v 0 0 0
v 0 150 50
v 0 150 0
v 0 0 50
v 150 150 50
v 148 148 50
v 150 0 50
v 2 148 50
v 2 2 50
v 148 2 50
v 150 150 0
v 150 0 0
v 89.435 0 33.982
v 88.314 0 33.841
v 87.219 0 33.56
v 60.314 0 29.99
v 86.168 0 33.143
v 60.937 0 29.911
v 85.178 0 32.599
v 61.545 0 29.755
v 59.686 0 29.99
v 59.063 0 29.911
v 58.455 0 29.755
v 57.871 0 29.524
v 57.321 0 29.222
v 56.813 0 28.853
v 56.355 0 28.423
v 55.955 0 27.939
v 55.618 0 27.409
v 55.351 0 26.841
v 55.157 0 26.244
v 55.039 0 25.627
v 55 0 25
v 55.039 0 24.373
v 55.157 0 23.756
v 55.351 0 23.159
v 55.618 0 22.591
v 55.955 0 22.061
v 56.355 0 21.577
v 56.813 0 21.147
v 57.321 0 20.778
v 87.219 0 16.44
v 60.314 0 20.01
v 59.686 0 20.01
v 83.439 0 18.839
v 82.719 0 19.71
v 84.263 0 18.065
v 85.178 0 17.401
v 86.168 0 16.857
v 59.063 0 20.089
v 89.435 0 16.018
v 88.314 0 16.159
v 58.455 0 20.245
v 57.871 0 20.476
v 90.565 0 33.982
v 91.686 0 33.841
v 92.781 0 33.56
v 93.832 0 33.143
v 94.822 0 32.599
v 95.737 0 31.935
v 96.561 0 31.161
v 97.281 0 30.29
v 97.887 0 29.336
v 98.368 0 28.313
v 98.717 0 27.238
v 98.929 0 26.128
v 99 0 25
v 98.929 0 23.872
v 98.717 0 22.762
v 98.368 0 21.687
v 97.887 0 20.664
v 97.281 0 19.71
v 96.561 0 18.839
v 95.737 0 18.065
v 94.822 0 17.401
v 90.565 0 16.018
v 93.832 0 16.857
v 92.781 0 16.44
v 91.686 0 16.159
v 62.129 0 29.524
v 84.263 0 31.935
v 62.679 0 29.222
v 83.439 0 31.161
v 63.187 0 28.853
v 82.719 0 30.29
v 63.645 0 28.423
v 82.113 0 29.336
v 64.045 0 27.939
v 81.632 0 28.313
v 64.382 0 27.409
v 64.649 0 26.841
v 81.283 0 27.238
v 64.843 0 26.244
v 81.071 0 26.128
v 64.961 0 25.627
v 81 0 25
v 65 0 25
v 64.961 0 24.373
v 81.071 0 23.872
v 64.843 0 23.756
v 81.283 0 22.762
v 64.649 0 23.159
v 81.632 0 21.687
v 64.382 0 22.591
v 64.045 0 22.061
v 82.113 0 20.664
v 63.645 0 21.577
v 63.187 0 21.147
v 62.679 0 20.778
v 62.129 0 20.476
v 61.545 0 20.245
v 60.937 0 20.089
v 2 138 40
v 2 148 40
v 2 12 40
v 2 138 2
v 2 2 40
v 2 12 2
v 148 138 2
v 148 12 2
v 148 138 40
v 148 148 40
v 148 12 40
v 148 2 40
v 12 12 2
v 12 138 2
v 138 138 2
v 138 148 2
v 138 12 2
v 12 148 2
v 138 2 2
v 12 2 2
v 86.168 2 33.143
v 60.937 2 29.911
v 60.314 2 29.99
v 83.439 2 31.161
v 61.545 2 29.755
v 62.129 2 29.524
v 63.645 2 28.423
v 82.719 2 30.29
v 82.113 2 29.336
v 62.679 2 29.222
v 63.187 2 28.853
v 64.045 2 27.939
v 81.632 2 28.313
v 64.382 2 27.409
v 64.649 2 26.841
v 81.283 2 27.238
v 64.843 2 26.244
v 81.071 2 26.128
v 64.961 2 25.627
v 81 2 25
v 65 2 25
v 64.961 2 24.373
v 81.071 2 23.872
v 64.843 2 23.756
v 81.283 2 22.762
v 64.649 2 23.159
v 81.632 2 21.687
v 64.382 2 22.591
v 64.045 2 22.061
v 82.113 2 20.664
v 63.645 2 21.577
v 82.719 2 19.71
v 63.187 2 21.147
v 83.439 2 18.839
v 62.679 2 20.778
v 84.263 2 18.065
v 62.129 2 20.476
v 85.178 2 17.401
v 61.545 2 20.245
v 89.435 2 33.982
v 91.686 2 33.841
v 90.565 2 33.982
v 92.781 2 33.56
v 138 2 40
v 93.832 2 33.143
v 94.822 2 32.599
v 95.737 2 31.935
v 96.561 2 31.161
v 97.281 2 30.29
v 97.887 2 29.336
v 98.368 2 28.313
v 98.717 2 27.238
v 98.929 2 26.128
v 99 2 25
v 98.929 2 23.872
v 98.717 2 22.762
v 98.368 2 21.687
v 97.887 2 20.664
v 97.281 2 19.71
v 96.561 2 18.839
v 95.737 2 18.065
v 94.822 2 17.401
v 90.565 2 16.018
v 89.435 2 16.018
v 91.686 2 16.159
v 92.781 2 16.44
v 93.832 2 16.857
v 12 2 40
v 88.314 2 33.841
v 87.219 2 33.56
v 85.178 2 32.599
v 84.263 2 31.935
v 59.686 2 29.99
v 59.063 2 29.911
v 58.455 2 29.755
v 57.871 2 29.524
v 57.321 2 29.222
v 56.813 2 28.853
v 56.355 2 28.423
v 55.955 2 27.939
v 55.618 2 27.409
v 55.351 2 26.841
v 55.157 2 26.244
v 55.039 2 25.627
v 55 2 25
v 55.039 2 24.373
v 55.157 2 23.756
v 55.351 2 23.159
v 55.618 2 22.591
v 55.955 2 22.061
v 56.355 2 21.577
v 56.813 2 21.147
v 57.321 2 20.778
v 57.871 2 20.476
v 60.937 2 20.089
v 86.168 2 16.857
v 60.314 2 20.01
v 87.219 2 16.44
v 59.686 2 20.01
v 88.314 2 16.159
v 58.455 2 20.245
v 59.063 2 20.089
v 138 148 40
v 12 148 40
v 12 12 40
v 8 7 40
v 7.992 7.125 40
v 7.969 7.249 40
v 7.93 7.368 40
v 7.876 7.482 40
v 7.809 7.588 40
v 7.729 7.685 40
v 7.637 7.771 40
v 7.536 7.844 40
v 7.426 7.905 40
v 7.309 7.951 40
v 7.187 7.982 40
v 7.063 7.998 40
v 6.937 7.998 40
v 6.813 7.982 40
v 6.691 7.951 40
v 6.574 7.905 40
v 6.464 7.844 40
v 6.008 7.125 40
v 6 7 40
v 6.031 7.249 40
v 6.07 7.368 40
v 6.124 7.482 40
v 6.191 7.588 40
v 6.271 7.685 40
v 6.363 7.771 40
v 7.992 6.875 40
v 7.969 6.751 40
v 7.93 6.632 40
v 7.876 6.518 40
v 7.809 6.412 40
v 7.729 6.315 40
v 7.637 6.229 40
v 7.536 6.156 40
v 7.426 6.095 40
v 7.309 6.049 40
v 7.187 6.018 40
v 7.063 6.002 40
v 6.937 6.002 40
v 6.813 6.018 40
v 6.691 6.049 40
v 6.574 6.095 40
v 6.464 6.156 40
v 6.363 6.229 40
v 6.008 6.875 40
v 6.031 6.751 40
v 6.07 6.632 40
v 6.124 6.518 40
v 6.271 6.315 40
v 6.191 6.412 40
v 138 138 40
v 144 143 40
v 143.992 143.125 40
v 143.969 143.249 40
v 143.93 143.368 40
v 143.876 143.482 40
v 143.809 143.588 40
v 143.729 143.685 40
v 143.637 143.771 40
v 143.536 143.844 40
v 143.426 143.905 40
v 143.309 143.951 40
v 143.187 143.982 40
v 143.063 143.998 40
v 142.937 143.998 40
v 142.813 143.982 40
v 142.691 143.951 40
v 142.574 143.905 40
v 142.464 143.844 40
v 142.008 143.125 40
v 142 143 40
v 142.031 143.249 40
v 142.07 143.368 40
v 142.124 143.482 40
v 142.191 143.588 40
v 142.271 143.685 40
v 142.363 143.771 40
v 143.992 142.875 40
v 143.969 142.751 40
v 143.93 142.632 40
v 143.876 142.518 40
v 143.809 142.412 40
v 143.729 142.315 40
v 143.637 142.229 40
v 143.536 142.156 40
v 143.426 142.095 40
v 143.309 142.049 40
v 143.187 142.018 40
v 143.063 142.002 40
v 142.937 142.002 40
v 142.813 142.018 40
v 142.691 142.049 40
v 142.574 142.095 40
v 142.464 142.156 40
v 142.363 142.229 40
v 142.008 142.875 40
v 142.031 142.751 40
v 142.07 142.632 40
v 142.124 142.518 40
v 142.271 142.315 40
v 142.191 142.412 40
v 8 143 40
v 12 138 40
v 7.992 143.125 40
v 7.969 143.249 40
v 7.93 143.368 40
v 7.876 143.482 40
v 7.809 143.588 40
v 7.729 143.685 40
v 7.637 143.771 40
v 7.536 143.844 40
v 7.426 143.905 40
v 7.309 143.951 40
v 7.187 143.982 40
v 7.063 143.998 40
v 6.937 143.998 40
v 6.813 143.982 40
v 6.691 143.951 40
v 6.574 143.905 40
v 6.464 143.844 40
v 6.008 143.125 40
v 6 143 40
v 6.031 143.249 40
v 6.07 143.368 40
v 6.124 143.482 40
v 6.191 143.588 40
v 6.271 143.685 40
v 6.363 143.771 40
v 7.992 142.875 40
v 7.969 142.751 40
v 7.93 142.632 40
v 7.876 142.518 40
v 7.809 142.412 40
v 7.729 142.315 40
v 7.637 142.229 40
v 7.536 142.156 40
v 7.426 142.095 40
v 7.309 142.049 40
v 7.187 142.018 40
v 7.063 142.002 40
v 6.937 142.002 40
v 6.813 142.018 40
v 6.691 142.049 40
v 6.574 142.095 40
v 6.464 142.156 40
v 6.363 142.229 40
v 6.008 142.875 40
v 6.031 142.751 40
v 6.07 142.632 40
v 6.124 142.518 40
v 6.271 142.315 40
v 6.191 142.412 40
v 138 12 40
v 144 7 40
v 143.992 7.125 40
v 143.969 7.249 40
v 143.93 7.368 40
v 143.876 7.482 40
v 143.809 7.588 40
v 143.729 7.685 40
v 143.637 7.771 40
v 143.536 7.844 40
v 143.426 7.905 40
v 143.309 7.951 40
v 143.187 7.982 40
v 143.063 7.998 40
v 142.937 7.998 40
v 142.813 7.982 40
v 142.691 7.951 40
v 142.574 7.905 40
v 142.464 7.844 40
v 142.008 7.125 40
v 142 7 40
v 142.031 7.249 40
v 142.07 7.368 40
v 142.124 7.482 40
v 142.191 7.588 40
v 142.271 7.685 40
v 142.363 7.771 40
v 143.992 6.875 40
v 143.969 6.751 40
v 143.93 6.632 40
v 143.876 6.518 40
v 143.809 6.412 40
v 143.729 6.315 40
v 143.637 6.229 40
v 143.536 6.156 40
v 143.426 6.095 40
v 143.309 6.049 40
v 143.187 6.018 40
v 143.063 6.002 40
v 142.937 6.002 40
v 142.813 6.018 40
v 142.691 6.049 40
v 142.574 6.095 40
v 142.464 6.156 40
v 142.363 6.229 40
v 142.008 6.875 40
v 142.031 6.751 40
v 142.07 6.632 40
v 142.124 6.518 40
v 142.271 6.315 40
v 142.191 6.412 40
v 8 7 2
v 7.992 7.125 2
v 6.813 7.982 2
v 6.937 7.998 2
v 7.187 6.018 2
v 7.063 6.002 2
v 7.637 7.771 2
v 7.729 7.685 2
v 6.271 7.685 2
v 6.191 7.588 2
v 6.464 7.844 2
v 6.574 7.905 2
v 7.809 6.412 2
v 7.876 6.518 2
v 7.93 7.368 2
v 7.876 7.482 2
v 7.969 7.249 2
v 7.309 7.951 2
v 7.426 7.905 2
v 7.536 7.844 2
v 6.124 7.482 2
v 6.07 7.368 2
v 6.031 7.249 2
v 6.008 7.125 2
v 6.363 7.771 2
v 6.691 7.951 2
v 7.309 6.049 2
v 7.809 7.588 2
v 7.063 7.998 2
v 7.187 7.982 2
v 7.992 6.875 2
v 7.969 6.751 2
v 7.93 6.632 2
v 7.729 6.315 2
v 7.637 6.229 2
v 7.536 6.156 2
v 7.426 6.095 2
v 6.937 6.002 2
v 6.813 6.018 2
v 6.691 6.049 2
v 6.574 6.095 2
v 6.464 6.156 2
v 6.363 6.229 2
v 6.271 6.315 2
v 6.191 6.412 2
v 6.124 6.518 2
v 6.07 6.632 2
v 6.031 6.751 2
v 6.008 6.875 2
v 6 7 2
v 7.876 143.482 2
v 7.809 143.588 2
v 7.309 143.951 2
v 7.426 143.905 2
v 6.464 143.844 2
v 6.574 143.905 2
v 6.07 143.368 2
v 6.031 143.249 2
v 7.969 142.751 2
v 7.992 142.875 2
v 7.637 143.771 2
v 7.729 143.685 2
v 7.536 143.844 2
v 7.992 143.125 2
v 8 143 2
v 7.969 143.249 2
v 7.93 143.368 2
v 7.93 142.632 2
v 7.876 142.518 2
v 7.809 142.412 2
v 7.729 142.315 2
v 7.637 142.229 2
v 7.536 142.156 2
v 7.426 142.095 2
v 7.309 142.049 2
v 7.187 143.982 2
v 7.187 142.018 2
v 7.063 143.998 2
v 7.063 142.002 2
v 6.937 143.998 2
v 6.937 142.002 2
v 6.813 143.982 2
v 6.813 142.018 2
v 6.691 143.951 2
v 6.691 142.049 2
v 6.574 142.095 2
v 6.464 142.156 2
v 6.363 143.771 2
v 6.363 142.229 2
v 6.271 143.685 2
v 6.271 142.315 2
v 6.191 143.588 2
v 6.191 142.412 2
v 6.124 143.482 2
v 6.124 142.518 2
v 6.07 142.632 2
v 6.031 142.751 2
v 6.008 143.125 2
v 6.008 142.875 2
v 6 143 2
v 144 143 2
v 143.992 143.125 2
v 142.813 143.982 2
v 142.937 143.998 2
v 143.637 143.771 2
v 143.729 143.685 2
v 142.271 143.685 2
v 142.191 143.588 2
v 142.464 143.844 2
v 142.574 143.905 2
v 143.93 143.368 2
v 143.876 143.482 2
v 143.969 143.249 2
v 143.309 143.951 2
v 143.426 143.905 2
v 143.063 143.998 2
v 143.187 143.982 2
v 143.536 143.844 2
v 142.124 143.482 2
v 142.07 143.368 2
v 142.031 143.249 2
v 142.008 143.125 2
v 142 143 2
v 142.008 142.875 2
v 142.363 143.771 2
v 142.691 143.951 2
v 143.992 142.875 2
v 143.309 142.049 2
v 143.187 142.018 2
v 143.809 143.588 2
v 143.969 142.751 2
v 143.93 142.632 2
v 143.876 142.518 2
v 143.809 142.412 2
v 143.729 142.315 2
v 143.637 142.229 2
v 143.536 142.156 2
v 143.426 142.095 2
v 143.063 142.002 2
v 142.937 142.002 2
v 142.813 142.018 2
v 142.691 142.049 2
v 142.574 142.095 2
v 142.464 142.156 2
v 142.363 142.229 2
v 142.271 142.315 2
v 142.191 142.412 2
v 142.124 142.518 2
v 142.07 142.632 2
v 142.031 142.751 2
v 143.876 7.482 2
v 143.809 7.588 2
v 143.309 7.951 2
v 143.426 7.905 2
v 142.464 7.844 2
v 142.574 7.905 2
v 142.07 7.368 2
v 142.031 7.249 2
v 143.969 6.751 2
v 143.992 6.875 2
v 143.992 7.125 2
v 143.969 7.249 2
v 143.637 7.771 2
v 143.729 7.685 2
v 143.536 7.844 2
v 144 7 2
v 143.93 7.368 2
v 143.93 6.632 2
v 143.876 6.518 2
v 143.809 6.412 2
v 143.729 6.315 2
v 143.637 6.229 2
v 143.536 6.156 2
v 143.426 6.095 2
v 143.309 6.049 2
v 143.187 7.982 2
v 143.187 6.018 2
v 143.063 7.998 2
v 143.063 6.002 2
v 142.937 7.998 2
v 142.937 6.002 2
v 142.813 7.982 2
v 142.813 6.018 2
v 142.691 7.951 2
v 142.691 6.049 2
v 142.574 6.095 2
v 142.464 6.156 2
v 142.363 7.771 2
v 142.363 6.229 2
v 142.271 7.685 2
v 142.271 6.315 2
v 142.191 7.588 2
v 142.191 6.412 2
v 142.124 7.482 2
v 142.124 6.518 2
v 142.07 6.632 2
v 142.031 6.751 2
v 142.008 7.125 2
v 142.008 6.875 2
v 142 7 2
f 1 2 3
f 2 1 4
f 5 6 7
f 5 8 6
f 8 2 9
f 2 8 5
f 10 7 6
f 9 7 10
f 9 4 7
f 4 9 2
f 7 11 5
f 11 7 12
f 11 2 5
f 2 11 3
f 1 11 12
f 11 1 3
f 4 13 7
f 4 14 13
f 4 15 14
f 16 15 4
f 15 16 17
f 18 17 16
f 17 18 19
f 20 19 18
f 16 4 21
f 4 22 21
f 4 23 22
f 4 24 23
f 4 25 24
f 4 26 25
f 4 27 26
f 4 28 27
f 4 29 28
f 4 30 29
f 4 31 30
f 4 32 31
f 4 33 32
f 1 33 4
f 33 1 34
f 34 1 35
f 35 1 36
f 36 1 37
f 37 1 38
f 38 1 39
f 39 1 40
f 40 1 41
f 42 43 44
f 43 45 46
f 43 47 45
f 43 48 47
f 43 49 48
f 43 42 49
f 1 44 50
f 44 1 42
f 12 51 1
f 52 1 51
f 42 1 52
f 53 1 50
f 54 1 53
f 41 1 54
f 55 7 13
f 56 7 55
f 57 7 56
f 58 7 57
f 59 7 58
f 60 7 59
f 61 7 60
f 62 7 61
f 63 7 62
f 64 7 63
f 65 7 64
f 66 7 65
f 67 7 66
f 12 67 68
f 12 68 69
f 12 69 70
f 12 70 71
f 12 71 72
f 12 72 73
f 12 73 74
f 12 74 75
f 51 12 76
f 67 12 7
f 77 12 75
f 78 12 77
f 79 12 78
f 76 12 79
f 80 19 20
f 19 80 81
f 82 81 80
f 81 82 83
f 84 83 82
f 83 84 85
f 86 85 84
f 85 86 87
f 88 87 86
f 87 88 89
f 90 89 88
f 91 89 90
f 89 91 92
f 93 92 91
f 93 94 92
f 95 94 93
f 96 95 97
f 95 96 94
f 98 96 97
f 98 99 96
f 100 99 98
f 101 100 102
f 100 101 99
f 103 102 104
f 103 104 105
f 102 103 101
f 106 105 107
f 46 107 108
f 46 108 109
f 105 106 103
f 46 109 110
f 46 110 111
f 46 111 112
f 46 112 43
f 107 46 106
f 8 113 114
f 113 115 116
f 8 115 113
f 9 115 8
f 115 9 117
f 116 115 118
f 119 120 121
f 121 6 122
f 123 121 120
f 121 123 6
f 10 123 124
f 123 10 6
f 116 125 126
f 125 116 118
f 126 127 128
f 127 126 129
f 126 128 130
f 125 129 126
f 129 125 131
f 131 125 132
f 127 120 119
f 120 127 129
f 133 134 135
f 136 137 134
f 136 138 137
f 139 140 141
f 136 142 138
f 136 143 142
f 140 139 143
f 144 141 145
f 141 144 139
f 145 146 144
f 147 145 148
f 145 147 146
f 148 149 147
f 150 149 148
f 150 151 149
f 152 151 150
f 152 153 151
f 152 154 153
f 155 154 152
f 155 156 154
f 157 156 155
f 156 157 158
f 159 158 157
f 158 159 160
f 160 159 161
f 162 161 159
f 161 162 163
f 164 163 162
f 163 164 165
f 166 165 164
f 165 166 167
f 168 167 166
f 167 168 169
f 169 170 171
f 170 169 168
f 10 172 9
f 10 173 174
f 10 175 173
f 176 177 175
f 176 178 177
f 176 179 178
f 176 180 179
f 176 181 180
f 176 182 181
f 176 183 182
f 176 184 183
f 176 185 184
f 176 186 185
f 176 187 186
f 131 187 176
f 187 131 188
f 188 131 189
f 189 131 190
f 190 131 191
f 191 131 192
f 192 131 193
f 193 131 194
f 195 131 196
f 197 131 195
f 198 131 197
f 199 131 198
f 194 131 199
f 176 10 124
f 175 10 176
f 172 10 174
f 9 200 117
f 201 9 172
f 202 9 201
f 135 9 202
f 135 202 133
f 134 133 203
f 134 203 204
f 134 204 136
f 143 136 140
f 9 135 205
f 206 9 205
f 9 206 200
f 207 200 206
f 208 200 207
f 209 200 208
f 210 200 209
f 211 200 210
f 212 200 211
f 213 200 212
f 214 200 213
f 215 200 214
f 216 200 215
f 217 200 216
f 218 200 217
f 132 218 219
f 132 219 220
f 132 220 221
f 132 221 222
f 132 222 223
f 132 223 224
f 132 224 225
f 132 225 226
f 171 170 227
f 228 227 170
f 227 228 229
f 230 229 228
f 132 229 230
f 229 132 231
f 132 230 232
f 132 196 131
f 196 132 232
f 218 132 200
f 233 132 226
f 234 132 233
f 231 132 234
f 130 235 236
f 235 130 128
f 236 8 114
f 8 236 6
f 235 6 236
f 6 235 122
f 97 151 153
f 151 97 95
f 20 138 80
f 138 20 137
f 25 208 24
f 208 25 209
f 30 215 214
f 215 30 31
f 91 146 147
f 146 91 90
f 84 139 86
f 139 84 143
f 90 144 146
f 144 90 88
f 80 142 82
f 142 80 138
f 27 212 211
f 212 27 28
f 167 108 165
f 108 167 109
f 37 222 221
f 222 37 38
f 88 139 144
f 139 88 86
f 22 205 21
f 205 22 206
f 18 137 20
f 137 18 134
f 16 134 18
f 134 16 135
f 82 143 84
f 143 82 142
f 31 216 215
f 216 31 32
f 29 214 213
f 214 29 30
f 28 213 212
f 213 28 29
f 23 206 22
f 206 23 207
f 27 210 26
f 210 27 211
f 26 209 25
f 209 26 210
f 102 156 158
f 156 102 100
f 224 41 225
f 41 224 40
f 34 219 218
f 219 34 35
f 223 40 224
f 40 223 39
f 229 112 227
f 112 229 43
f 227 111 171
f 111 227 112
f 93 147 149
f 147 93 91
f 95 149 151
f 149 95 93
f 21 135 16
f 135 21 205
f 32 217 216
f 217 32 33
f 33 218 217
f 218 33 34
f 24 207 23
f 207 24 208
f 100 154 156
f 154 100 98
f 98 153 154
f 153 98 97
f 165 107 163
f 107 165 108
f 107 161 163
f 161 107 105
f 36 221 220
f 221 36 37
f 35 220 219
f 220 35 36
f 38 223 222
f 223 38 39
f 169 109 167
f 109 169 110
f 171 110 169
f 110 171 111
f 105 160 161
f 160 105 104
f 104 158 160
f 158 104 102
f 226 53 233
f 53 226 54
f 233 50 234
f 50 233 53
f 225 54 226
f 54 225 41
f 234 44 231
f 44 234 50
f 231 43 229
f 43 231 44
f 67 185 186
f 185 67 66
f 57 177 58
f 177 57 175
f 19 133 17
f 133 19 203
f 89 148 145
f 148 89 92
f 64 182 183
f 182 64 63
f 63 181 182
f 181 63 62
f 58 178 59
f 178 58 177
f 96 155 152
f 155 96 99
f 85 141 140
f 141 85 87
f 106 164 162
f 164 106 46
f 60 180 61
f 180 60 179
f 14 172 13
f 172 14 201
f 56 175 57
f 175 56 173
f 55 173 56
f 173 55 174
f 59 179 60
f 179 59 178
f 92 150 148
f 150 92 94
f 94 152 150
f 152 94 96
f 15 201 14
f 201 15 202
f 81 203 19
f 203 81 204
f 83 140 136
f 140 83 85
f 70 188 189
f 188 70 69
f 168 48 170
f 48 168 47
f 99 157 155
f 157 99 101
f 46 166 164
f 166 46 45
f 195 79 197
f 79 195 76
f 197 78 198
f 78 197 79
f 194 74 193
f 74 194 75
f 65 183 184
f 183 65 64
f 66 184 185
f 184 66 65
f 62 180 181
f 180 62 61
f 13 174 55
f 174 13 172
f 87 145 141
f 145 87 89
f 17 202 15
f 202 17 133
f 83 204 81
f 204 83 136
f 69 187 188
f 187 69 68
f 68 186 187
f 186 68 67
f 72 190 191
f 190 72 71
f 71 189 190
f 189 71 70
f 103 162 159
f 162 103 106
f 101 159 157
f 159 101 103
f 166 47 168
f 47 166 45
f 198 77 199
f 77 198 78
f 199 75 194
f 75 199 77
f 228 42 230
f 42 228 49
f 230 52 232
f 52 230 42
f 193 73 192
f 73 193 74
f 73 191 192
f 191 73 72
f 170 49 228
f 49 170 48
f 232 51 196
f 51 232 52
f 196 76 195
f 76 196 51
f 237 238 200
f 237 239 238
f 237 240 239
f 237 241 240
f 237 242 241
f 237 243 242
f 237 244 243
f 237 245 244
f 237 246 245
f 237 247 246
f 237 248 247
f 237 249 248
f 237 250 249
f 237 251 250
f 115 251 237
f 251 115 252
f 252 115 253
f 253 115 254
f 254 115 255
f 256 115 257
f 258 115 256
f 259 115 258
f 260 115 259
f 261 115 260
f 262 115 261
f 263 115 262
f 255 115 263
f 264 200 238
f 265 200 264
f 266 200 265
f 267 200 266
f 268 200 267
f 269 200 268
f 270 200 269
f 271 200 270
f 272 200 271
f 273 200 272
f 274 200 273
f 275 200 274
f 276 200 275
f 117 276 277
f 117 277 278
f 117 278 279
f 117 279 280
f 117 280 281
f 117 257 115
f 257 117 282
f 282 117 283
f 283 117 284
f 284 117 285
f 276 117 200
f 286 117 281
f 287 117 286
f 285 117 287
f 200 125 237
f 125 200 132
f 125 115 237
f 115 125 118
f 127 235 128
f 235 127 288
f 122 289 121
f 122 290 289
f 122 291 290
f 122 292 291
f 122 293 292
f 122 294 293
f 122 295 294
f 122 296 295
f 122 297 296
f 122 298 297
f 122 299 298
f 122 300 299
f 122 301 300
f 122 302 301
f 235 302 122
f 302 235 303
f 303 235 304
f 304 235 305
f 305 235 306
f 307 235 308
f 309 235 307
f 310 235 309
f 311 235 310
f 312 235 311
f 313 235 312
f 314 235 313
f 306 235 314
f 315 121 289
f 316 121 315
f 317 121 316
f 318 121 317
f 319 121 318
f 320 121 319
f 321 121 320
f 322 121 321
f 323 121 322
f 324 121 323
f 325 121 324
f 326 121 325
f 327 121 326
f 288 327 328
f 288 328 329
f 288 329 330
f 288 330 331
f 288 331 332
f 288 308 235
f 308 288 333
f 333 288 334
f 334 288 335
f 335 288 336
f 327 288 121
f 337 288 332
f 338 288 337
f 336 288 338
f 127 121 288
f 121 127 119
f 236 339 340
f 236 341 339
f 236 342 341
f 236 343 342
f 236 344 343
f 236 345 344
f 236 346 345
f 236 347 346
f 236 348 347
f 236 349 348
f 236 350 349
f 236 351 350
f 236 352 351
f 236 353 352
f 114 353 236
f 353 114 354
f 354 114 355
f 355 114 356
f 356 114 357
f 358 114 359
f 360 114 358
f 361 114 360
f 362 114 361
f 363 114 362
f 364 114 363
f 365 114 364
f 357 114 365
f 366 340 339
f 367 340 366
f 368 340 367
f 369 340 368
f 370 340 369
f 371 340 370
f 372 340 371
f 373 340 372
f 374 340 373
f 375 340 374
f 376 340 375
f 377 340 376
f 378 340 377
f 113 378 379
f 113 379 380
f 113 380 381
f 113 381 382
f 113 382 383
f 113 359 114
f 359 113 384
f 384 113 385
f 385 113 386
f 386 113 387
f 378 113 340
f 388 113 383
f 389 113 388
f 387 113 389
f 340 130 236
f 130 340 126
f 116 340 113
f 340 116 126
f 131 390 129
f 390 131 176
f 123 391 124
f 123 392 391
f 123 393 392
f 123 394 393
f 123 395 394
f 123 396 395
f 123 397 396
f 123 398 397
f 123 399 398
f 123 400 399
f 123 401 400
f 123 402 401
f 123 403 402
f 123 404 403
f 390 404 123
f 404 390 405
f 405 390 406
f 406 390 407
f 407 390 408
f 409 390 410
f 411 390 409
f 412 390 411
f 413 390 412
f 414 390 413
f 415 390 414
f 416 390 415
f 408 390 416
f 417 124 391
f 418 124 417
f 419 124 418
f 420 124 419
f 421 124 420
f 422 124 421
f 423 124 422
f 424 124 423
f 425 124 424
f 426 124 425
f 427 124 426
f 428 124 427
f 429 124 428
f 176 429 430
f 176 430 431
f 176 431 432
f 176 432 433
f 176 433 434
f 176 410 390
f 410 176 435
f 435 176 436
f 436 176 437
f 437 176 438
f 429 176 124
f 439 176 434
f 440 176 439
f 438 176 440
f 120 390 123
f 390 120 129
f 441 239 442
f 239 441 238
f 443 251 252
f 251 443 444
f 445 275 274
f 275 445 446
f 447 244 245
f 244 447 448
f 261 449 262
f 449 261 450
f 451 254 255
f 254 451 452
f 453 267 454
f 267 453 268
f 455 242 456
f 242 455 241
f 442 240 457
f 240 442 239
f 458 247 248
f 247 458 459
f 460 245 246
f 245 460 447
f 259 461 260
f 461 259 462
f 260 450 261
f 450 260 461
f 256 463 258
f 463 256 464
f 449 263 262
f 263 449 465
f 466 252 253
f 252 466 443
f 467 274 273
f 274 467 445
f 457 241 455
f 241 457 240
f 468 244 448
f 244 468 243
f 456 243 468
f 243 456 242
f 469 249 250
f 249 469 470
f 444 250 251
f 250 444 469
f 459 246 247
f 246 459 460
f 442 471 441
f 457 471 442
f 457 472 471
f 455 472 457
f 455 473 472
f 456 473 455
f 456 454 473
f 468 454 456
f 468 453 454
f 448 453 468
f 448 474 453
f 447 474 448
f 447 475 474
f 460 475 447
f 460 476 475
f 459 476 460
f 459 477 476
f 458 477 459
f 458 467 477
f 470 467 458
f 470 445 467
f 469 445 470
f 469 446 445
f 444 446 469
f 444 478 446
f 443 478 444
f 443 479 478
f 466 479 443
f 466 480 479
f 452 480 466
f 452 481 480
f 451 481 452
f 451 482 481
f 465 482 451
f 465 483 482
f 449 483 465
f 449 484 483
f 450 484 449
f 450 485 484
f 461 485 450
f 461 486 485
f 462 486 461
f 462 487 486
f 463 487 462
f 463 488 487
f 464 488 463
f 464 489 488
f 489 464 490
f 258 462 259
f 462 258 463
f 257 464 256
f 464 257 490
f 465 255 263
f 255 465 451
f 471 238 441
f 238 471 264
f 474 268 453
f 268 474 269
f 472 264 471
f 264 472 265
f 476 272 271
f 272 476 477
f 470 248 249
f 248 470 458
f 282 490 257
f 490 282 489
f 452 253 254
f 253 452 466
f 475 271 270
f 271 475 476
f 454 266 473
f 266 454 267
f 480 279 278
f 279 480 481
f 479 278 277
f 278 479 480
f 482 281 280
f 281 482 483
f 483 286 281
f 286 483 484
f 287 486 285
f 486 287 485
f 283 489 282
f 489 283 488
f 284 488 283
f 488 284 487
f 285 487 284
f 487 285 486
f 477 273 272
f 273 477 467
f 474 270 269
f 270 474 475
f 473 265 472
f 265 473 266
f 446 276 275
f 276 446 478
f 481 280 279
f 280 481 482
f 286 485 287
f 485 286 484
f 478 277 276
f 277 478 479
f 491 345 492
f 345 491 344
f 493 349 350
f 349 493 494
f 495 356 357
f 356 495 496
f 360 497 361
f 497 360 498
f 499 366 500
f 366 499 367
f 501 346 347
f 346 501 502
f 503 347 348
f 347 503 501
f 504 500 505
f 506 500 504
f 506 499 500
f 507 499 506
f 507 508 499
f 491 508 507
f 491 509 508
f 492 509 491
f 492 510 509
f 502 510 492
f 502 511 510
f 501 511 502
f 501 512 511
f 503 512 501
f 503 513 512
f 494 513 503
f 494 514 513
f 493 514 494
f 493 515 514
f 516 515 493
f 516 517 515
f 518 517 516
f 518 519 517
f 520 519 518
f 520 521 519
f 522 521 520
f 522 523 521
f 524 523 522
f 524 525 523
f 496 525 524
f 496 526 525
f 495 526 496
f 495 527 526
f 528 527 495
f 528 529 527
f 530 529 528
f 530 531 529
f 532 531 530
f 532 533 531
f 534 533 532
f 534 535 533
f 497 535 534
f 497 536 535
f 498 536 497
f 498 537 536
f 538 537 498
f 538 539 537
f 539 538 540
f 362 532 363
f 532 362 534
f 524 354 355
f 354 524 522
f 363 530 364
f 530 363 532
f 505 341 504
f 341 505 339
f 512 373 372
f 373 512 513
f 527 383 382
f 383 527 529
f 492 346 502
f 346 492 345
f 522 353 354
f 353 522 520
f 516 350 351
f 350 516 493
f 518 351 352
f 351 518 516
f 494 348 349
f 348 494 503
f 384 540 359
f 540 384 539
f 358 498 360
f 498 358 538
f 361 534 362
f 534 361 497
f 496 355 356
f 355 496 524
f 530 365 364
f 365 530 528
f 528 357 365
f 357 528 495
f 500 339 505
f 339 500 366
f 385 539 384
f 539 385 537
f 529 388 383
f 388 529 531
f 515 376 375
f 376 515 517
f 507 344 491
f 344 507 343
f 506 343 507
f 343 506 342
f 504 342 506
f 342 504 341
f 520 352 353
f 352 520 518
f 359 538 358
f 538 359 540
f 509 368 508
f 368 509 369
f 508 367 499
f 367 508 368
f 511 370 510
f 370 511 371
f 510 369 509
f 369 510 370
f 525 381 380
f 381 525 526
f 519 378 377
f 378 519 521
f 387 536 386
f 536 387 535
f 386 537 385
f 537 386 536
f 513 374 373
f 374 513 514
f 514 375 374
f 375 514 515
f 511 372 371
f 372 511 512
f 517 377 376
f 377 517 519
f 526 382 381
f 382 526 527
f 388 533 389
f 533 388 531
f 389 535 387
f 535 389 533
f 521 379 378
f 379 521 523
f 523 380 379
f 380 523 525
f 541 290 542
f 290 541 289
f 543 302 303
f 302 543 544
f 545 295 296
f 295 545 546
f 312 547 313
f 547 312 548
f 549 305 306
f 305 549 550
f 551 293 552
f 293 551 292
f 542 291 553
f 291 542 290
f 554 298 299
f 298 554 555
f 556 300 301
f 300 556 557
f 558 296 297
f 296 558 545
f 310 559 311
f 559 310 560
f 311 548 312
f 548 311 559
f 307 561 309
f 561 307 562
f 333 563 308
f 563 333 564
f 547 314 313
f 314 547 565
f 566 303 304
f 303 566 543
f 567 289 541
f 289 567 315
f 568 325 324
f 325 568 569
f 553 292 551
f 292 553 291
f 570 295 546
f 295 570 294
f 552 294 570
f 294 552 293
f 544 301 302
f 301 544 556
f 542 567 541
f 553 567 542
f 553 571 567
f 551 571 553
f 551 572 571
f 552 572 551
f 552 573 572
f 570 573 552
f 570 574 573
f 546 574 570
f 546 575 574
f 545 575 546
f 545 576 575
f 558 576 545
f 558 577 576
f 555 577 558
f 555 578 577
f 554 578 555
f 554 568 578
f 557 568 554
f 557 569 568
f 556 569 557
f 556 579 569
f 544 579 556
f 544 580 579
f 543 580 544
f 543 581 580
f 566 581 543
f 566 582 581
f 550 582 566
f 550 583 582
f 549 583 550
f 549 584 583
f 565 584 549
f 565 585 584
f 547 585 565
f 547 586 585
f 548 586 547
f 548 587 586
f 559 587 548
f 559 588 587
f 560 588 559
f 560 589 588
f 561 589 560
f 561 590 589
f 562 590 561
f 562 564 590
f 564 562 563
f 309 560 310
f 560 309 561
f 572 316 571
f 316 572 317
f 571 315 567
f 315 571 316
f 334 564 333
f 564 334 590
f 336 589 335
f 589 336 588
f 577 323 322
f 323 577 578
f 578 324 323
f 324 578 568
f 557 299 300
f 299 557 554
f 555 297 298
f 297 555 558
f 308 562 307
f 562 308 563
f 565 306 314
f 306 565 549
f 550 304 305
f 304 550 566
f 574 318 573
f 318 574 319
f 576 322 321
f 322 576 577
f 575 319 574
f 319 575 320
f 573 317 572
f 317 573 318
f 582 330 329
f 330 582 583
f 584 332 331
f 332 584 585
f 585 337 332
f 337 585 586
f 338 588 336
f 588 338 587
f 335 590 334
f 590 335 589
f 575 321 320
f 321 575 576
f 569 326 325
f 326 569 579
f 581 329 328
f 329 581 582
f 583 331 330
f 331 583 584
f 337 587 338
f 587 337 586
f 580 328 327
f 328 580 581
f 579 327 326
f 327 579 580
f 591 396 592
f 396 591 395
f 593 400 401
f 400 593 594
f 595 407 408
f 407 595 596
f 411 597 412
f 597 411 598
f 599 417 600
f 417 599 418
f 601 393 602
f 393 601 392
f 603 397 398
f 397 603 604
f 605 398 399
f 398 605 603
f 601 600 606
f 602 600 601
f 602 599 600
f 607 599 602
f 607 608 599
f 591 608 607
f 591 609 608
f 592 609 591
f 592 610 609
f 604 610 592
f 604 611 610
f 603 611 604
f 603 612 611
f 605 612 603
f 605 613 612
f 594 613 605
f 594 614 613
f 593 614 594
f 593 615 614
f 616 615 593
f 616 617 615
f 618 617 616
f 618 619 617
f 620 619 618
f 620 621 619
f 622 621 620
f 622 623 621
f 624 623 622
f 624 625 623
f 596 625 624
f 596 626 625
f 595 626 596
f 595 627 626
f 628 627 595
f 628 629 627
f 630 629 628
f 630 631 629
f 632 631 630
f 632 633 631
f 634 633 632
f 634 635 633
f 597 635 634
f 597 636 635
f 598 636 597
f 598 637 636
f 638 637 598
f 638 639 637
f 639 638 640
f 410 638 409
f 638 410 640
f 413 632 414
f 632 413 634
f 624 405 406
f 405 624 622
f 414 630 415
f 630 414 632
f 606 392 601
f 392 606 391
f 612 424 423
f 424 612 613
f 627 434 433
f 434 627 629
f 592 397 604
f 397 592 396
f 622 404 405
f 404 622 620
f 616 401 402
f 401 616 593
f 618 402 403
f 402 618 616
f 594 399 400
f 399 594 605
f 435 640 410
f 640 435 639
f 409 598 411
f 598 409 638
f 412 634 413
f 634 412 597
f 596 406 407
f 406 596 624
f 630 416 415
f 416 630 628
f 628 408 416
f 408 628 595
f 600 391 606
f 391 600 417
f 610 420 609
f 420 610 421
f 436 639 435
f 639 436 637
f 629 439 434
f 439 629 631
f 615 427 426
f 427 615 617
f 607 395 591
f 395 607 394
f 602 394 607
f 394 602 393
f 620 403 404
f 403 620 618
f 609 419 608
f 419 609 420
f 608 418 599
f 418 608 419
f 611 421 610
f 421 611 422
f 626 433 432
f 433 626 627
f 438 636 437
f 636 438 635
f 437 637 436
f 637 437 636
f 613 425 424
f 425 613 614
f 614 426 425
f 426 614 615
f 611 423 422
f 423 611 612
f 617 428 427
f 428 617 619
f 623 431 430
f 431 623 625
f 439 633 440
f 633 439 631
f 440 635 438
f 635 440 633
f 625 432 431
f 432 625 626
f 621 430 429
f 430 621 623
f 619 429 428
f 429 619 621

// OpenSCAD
$fn=50;
//boden
difference() {
    union() {
        difference(){
            cube([150,150,50]);
            translate([2,2,2]) cube([146,146,48]);
            translate([60,5,25]) rotate(90, v=[1,0,0]) cylinder(5,10/2,10/2);
            translate([90,5,25]) rotate(90, v=[1,0,0]) cylinder(5,18/2,18/2);
        }
        translate([2,2,0]) cube([10,10,40]);
        translate([138,138,0]) cube([10,10,40]);
        translate([2,138,0]) cube([10,10,40]);
        translate([138,2,0]) cube([10,10,40]);
    }
    translate([7,7,2]) cylinder(50,2/2,2/2);
    translate([7,143,2]) cylinder(50,2/2,2/2);
    translate([143,143,2]) cylinder(50,2/2,2/2);
    translate([143,7,2]) cylinder(50,2/2,2/2);
}
